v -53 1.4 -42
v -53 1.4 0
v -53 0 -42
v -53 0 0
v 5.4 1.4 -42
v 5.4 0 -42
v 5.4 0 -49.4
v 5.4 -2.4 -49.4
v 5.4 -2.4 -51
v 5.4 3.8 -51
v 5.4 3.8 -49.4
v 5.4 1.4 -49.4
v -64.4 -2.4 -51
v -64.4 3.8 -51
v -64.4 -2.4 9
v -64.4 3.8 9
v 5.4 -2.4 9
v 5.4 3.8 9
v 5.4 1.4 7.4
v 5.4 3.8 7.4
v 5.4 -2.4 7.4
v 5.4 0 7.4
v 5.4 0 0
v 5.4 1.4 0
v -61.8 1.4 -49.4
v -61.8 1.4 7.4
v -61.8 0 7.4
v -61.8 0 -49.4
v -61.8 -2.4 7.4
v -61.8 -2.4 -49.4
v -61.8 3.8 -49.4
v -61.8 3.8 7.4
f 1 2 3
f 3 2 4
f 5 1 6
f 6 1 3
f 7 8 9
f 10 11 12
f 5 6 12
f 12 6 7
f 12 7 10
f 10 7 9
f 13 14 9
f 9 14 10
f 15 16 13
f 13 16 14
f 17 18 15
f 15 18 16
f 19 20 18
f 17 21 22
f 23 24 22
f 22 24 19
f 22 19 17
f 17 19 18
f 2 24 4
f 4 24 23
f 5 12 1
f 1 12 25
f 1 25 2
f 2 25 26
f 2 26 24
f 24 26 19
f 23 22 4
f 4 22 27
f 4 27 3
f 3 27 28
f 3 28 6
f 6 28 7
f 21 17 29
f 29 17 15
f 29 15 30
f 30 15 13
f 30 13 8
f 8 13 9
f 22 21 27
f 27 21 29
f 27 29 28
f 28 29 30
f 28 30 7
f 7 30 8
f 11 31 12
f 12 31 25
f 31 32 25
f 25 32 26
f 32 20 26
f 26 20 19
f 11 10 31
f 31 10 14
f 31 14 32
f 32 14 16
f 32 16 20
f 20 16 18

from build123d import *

# Parameters (mm, degrees)
BOSS_EXTRUDE1_DEPTH      = 1.4
BOSS_EXTRUDE2_DEPTH      = 2.4
BOSS_EXTRUDE2_DEPTH_BACK = 3.8


with BuildPart() as part:
    # Sketch1 → Boss-Extrude1 (new body)
    with BuildSketch(Plane(origin=(0, 0, 0), x_dir=(1, 0, 0), z_dir=(0, 1, 0))):
        Polygon((0, 0), (5.4, 0), (5.4, -7), (5.4, -9), (-58.4, -9), (-61.4, -9), (-64.4, -9), (-64.4, 51), (-61.4, 51), (-58.4, 51), (5.4, 51), (5.4, 49), (5.4, 42), (0, 42), (-53, 42), (-53, 0), align=None)
    extrude(amount=BOSS_EXTRUDE1_DEPTH)

    # Sketch2 → Boss-Extrude2 (add, two sides: drawn at the far end of the back side and taken through both)
    with BuildSketch(Plane(origin=(0, 1.4, 0), x_dir=(1, 0, 0), z_dir=(0, 1, 0)).offset(-BOSS_EXTRUDE2_DEPTH_BACK)):
        Polygon((-64.4, 51), (5.4, 51), (5.4, 49.4), (-61.8, 49.4), (-61.8, -7.4), (5.4, -7.4), (5.4, -9), (-64.4, -9), align=None)
    extrude(amount=BOSS_EXTRUDE2_DEPTH + BOSS_EXTRUDE2_DEPTH_BACK)


solid = part.part
